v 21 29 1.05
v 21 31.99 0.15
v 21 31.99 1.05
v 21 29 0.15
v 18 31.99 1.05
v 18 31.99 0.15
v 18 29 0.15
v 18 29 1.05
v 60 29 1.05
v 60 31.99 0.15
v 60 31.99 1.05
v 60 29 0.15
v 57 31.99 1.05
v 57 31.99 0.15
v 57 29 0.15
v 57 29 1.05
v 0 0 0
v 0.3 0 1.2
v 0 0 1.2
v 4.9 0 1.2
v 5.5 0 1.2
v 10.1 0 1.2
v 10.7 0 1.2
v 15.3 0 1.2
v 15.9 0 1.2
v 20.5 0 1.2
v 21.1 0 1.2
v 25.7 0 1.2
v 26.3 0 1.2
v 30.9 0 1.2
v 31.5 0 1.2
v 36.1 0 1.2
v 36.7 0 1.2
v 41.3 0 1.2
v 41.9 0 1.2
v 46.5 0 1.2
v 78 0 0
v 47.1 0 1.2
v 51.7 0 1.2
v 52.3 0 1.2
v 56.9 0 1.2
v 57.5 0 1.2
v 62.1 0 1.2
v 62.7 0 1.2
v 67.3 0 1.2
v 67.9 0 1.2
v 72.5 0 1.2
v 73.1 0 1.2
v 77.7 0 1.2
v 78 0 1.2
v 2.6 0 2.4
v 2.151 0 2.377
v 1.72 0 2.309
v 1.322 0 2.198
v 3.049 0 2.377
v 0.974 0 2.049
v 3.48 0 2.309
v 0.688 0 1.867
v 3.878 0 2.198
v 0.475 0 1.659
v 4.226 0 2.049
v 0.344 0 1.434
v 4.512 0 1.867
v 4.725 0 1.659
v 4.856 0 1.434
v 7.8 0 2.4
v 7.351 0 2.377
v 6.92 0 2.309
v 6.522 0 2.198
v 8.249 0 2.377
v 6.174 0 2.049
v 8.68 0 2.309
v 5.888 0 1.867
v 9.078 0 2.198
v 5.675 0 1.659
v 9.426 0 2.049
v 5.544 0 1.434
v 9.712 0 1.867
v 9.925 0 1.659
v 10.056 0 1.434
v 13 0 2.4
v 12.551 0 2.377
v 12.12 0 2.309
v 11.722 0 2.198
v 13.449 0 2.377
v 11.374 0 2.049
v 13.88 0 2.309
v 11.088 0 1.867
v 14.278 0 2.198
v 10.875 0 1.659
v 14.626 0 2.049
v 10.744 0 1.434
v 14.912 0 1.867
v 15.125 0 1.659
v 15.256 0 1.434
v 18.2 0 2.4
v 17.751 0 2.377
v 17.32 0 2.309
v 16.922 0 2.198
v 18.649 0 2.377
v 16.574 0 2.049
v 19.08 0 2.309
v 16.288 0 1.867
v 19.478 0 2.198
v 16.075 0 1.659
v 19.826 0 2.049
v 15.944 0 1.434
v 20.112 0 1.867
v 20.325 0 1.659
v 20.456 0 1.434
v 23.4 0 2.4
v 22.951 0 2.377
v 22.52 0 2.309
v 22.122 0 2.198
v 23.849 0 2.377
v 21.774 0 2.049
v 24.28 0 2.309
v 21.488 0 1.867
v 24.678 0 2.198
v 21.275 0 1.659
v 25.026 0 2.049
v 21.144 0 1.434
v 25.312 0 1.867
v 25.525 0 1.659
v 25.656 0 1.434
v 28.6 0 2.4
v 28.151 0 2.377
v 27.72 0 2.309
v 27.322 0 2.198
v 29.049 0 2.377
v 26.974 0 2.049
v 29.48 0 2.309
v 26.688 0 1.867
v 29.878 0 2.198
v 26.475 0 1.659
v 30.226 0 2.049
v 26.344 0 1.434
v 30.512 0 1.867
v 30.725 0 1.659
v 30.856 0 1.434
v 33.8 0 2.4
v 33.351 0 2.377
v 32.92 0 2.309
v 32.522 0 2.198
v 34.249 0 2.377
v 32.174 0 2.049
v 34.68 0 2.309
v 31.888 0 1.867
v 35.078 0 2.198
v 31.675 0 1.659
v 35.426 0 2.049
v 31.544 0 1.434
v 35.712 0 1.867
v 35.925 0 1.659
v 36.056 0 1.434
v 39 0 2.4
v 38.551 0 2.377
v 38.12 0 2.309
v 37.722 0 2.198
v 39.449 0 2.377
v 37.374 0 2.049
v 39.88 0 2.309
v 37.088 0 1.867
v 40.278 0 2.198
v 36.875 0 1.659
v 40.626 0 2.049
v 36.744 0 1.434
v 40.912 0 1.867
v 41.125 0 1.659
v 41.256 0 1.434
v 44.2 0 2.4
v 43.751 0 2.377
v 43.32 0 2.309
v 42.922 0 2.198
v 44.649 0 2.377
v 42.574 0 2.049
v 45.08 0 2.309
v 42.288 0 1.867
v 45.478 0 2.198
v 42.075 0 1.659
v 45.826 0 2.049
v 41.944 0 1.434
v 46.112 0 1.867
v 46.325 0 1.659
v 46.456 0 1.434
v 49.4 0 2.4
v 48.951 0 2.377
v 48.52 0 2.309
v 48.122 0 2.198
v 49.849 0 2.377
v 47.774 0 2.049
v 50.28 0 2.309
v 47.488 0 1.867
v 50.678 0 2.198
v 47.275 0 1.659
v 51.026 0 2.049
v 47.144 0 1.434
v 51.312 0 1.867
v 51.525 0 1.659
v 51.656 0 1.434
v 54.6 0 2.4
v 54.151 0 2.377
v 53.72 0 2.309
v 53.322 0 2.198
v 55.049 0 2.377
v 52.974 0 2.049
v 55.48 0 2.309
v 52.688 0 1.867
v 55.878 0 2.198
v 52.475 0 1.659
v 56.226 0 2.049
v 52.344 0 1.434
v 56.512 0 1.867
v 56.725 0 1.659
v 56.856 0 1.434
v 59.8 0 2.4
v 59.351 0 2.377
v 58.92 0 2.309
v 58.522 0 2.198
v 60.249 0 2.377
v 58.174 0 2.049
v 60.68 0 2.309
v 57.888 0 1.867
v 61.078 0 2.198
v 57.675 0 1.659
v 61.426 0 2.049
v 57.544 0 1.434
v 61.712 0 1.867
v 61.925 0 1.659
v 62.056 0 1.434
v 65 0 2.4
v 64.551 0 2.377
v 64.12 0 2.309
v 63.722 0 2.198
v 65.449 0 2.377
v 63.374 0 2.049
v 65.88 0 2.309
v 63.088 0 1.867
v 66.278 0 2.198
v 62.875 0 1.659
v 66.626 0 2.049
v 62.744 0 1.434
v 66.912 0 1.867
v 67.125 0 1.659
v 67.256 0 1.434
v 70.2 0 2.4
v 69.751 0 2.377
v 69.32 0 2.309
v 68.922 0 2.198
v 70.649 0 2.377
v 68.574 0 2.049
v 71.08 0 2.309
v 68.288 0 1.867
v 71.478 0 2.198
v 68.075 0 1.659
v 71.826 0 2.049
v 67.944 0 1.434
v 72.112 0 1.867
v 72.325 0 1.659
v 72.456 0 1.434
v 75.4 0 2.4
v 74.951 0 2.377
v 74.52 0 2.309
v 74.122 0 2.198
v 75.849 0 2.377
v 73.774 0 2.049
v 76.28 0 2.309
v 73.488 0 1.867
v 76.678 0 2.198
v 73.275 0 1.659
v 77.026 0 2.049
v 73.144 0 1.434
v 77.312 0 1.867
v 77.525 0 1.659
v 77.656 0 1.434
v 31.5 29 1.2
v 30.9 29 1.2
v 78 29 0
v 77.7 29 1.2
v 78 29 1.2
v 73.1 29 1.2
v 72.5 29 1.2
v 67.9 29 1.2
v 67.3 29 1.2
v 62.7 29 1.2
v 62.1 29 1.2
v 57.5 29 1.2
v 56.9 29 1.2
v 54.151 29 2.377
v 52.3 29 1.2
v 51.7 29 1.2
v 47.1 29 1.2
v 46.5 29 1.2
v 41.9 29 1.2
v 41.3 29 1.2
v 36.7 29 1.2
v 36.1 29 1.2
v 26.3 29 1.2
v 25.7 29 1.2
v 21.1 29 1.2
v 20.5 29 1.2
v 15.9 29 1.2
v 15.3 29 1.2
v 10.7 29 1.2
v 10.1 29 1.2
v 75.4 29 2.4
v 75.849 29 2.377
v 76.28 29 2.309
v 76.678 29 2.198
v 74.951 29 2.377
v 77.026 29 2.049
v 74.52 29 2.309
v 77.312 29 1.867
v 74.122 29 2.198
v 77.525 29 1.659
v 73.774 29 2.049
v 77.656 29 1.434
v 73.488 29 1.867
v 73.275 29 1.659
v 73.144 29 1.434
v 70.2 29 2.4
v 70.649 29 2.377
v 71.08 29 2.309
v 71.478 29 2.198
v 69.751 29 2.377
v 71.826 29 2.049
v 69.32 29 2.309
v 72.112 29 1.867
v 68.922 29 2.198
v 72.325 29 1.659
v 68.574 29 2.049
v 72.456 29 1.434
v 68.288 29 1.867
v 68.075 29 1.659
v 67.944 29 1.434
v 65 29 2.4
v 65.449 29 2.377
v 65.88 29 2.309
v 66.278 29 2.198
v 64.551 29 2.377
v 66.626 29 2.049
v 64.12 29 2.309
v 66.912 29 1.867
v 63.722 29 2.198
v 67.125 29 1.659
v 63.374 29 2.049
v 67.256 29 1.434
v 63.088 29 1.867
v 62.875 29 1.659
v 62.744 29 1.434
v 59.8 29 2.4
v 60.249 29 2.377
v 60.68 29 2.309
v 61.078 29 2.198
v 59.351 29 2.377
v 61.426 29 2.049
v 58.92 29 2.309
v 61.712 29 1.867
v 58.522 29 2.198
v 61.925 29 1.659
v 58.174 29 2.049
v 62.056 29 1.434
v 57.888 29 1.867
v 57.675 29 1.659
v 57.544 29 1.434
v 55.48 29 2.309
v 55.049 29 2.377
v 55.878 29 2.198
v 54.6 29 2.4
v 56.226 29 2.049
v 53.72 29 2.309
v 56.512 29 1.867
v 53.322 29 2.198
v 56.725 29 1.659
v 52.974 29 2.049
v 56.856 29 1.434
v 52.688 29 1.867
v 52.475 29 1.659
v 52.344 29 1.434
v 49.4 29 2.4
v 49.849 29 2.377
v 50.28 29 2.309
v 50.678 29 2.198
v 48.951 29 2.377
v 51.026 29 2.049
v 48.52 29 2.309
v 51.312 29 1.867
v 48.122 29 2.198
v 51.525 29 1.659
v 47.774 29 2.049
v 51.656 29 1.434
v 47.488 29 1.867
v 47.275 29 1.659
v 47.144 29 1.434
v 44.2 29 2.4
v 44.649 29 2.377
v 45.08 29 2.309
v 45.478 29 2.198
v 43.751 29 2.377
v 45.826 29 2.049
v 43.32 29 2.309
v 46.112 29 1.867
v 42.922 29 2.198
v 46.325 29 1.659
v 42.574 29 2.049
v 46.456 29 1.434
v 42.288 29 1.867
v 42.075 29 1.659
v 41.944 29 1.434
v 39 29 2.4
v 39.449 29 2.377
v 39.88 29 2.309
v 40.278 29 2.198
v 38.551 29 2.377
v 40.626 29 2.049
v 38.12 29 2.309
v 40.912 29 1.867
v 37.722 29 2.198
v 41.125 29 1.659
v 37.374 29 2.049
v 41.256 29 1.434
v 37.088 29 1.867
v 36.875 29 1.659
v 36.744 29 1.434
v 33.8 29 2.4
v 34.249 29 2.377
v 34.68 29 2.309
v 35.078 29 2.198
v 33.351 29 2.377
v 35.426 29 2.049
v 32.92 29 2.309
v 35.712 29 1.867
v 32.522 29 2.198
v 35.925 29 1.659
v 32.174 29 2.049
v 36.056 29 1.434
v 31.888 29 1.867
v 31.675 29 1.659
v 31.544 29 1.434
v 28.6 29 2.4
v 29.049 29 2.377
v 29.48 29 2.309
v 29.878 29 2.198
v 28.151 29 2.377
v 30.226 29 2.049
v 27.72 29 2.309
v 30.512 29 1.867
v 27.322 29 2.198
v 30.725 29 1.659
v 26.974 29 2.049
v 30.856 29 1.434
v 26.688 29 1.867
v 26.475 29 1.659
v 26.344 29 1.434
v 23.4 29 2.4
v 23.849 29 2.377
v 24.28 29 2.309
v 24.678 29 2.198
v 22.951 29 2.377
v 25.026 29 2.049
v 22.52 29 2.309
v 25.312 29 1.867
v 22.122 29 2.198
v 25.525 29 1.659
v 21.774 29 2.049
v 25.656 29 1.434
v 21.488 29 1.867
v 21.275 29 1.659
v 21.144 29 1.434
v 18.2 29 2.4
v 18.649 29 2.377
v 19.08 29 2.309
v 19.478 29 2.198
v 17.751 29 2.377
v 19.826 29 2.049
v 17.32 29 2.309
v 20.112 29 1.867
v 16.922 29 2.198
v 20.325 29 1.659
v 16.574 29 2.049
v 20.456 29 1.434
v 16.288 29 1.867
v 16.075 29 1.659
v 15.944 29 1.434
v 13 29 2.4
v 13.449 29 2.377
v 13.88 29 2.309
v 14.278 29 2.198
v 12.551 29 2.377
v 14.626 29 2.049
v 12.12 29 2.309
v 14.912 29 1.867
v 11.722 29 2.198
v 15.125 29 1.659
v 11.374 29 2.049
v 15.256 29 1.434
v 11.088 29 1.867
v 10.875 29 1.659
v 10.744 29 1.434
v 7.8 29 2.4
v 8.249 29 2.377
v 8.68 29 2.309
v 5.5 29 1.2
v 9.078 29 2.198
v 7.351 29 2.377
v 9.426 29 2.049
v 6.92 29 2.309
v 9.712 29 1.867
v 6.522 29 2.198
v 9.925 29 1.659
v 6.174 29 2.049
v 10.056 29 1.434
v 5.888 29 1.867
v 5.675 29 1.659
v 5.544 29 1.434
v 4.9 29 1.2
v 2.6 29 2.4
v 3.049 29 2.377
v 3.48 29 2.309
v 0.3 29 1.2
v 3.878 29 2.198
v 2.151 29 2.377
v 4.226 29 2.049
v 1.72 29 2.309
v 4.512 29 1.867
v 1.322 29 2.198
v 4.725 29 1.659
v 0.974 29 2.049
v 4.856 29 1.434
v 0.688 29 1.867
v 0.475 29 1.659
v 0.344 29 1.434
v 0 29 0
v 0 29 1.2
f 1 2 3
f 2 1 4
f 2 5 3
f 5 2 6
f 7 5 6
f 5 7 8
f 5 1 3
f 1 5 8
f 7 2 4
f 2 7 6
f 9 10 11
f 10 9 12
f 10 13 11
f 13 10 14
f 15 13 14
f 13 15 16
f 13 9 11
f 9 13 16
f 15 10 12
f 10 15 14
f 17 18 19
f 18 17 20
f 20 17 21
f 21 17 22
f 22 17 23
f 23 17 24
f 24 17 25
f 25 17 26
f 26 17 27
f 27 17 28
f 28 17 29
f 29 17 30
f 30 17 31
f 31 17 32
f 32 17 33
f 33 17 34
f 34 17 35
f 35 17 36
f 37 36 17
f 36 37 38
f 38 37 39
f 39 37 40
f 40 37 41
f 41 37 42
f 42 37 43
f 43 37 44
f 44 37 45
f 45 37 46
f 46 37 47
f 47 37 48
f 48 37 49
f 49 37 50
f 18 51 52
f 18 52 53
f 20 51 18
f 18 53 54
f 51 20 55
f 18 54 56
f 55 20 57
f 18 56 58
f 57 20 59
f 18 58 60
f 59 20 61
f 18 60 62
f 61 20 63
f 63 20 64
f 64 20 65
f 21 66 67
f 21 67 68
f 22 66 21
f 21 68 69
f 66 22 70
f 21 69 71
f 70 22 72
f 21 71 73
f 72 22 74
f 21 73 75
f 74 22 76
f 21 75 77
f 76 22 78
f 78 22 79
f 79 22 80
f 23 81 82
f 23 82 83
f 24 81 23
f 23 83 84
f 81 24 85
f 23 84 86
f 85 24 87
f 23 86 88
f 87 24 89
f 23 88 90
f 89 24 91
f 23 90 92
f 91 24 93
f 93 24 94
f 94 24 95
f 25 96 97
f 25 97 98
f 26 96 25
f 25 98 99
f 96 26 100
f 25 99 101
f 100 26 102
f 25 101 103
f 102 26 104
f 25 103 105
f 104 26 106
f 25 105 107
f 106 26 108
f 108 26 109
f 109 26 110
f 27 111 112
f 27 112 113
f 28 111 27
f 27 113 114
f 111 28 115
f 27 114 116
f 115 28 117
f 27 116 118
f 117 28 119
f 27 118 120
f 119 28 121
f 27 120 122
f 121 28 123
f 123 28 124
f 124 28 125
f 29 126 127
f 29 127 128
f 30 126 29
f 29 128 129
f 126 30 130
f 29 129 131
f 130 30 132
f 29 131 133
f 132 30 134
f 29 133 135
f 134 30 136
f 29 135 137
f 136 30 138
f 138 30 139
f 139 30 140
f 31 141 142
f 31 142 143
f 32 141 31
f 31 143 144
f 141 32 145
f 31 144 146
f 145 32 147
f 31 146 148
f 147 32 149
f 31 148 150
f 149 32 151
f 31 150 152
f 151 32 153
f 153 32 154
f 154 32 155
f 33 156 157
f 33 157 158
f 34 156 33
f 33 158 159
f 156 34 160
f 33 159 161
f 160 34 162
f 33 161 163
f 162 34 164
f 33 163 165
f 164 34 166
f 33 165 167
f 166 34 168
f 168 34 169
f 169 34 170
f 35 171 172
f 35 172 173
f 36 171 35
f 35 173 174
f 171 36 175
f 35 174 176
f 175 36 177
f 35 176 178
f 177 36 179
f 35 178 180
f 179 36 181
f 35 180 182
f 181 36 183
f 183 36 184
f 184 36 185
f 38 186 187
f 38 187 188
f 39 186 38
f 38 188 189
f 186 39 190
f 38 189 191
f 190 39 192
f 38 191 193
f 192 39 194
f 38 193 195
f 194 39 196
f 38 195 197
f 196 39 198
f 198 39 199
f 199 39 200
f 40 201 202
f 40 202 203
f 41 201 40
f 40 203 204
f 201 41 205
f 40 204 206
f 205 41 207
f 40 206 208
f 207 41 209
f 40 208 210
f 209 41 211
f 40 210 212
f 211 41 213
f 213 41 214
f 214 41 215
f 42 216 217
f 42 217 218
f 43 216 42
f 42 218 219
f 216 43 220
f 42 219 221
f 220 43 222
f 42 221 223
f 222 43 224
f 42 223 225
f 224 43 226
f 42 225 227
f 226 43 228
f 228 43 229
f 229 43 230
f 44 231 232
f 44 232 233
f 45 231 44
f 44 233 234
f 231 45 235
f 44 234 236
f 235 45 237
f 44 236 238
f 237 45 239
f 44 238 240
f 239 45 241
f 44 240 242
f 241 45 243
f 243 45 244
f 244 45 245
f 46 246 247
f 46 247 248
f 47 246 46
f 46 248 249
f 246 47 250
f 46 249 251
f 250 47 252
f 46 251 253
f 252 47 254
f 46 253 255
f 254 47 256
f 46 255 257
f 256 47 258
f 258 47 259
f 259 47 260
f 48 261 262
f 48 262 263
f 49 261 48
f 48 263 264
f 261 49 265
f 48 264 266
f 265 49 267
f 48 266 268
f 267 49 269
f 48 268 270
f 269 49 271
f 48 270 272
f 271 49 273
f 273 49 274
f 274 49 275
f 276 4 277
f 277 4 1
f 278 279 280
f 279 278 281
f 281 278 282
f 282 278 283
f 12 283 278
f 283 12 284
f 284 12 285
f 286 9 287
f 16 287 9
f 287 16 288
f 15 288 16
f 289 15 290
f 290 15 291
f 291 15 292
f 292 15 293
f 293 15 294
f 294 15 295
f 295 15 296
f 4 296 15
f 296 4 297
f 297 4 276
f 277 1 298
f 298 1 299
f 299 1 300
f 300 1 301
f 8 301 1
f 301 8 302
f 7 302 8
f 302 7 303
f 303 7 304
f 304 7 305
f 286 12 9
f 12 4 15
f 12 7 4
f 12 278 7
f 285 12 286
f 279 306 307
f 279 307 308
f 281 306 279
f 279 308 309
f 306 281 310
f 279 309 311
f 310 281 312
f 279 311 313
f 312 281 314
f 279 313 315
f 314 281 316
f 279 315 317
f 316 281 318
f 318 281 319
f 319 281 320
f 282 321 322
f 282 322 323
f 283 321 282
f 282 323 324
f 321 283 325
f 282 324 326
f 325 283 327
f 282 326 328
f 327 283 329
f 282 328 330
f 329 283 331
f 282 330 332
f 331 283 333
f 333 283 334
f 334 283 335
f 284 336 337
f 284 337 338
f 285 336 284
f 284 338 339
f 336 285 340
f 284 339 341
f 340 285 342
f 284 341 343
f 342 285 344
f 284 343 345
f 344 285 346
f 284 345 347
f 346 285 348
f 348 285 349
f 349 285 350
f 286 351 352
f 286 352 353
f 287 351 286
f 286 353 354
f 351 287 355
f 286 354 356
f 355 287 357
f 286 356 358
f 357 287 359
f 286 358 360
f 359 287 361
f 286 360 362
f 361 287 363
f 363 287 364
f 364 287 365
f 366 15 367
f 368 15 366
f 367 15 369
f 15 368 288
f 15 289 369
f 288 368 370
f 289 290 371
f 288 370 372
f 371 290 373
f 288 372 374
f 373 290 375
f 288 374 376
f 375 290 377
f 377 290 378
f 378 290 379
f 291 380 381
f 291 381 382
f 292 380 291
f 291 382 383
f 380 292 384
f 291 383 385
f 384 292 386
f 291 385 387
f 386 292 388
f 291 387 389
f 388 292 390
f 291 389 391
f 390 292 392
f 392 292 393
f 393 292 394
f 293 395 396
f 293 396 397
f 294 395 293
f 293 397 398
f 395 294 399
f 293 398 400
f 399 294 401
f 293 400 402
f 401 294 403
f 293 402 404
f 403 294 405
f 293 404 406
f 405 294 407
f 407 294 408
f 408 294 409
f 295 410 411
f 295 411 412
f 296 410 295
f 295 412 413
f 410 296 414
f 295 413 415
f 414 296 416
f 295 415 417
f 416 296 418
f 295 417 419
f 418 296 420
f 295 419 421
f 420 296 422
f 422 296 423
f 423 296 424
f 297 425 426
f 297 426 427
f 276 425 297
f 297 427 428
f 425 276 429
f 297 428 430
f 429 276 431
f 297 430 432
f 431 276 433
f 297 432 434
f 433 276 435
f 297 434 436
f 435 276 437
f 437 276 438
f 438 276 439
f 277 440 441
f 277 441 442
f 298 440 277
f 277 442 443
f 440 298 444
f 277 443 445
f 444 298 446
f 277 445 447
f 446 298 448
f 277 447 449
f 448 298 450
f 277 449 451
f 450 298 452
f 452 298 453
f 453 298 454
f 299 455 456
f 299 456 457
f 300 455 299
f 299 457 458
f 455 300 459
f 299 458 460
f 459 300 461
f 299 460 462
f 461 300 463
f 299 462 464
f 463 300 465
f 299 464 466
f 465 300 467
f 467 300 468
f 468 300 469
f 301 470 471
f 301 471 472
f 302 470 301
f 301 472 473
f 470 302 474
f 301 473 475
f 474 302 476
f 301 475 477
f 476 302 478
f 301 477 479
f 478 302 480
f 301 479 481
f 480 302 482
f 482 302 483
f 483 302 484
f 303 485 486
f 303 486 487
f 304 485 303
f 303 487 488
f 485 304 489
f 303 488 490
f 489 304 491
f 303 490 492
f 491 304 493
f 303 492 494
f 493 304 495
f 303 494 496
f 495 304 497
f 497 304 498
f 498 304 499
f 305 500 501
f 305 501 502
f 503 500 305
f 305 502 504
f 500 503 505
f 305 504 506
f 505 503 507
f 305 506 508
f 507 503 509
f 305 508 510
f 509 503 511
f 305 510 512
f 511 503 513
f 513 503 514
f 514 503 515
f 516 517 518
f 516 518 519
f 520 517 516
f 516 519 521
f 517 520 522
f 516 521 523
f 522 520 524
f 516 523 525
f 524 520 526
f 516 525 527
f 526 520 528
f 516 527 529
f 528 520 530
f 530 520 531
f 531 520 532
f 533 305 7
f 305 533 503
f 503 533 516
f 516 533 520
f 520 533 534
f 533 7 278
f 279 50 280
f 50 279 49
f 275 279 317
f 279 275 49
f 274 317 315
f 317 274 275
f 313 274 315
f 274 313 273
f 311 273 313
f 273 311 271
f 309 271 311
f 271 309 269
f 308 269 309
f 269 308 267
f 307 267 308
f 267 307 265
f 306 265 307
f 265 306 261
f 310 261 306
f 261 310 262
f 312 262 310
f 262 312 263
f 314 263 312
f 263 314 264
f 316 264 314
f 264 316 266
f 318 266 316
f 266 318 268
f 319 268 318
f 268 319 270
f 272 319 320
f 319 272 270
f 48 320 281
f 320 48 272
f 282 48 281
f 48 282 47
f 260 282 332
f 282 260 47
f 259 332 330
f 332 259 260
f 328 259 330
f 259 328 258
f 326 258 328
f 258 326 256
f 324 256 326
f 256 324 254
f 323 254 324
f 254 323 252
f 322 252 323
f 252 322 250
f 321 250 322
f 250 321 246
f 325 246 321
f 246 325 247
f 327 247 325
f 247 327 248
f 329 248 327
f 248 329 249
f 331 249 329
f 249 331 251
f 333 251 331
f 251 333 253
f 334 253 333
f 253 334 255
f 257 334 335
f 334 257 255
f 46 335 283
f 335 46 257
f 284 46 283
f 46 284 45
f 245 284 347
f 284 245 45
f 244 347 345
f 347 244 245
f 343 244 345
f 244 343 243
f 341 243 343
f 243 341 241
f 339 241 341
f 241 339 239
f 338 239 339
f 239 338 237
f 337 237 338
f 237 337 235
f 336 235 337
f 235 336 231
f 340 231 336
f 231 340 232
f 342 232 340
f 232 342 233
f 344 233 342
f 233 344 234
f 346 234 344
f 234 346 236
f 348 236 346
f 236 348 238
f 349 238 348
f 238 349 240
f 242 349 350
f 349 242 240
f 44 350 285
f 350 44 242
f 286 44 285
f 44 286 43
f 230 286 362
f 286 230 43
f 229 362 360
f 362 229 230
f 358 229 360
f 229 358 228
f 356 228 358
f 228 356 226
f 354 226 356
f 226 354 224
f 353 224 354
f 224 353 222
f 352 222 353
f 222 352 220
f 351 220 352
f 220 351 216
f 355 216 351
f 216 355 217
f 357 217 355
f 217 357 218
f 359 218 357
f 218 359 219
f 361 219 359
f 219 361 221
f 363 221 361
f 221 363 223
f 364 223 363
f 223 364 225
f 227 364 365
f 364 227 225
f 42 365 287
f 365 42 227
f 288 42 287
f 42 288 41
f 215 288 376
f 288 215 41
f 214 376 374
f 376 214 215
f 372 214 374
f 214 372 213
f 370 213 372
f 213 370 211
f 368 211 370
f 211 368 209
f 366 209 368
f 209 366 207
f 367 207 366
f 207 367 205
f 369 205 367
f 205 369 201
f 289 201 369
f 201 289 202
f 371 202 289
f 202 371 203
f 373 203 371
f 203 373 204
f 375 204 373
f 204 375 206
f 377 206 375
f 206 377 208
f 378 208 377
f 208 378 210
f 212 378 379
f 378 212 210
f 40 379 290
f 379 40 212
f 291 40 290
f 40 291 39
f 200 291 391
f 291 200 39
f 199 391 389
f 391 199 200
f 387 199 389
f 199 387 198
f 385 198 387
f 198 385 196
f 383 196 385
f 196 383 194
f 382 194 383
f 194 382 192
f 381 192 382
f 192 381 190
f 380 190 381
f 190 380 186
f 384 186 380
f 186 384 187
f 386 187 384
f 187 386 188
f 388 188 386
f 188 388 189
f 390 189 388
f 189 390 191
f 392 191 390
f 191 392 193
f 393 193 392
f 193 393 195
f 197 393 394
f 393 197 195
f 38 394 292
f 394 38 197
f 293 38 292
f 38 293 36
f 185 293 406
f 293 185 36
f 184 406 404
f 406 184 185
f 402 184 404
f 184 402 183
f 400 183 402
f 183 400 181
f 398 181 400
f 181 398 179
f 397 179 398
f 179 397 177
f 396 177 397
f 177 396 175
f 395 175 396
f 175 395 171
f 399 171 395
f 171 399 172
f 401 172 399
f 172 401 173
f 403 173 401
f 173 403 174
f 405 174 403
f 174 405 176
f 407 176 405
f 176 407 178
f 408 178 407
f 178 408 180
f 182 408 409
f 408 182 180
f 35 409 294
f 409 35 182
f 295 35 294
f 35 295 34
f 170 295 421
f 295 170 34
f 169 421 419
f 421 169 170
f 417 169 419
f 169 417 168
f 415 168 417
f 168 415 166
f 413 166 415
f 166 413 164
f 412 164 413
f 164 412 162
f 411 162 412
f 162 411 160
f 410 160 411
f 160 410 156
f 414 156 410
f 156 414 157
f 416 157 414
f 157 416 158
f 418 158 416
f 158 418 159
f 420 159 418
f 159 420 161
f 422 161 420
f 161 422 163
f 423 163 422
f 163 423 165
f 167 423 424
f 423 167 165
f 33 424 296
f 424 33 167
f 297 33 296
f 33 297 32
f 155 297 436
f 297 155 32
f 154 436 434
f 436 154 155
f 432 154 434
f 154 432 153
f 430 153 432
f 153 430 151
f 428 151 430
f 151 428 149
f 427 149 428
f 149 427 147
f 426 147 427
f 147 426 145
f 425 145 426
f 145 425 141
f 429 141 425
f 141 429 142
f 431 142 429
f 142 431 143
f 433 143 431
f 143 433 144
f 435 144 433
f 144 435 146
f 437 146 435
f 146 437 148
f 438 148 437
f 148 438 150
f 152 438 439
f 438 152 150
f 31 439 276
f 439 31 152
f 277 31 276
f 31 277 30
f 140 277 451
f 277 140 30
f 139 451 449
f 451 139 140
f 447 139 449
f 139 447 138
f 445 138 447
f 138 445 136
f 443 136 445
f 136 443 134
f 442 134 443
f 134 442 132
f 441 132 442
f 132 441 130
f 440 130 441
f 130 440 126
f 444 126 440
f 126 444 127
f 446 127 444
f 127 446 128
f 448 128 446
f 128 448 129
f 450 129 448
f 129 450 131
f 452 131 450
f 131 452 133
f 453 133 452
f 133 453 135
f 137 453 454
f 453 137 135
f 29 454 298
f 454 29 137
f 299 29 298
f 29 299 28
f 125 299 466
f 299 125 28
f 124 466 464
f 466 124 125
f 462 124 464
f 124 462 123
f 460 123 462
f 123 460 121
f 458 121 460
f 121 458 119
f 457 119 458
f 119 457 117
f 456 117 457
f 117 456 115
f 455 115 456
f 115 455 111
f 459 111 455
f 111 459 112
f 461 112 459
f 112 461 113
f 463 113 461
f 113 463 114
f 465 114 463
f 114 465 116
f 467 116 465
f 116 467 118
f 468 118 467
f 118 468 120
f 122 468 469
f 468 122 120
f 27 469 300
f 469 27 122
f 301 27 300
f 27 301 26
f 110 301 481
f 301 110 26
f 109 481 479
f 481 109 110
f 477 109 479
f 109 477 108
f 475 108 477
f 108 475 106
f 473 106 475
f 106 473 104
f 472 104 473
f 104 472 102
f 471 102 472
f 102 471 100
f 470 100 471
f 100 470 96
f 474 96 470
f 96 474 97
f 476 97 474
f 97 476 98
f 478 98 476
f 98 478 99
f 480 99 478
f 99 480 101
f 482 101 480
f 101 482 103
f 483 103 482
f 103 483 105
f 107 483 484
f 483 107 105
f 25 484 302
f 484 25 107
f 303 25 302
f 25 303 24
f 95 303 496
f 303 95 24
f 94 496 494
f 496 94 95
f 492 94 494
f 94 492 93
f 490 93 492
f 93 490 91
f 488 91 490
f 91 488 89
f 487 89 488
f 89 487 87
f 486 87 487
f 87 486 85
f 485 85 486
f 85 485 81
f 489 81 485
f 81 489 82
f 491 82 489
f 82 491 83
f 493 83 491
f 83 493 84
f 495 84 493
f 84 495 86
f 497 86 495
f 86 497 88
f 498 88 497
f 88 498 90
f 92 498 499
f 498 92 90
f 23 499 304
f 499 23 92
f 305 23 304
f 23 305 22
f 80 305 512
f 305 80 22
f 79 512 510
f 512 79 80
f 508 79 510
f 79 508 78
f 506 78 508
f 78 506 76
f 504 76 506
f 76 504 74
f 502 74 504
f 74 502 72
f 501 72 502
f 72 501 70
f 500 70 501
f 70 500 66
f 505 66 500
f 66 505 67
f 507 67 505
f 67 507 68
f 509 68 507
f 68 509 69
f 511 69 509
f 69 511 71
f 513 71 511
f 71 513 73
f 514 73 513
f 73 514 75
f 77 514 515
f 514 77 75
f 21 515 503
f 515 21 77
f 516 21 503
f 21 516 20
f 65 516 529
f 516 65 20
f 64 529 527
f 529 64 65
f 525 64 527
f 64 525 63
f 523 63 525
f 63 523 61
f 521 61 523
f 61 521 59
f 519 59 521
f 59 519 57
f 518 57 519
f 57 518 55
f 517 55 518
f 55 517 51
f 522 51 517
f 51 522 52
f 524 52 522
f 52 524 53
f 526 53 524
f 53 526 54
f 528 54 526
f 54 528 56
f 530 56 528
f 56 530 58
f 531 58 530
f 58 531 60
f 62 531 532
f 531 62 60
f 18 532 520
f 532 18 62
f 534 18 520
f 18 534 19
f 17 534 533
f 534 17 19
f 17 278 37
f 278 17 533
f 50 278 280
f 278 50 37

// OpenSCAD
// Right_Wall_Panel_Lower.stl  -  Store Versile room frame (Rev C)
// Quantity: 1   Filament: Peach-beige (e.g. Bambu PLA Matte Desert Tan / Latte Brown, or PLA Sparkle for shimmer)
// Print: layer 0.16 mm, infill 15%, 2 walls, brim 0 mm, NO supports
// Orientation: back  (lying on its back, front face up)
// Notes: Flutes up. Seam is hidden behind the shelving.
// The library draws parts with their front toward +Y; mirror([0,1,0]) makes the real
// part face the viewer correctly (see build.py). Edit dimensions in versile_parts.scad.
use <../versile_parts.scad>

rotate([-90, 0, 0]) mirror([0, 1, 0]) wall_panel_lower(78);
